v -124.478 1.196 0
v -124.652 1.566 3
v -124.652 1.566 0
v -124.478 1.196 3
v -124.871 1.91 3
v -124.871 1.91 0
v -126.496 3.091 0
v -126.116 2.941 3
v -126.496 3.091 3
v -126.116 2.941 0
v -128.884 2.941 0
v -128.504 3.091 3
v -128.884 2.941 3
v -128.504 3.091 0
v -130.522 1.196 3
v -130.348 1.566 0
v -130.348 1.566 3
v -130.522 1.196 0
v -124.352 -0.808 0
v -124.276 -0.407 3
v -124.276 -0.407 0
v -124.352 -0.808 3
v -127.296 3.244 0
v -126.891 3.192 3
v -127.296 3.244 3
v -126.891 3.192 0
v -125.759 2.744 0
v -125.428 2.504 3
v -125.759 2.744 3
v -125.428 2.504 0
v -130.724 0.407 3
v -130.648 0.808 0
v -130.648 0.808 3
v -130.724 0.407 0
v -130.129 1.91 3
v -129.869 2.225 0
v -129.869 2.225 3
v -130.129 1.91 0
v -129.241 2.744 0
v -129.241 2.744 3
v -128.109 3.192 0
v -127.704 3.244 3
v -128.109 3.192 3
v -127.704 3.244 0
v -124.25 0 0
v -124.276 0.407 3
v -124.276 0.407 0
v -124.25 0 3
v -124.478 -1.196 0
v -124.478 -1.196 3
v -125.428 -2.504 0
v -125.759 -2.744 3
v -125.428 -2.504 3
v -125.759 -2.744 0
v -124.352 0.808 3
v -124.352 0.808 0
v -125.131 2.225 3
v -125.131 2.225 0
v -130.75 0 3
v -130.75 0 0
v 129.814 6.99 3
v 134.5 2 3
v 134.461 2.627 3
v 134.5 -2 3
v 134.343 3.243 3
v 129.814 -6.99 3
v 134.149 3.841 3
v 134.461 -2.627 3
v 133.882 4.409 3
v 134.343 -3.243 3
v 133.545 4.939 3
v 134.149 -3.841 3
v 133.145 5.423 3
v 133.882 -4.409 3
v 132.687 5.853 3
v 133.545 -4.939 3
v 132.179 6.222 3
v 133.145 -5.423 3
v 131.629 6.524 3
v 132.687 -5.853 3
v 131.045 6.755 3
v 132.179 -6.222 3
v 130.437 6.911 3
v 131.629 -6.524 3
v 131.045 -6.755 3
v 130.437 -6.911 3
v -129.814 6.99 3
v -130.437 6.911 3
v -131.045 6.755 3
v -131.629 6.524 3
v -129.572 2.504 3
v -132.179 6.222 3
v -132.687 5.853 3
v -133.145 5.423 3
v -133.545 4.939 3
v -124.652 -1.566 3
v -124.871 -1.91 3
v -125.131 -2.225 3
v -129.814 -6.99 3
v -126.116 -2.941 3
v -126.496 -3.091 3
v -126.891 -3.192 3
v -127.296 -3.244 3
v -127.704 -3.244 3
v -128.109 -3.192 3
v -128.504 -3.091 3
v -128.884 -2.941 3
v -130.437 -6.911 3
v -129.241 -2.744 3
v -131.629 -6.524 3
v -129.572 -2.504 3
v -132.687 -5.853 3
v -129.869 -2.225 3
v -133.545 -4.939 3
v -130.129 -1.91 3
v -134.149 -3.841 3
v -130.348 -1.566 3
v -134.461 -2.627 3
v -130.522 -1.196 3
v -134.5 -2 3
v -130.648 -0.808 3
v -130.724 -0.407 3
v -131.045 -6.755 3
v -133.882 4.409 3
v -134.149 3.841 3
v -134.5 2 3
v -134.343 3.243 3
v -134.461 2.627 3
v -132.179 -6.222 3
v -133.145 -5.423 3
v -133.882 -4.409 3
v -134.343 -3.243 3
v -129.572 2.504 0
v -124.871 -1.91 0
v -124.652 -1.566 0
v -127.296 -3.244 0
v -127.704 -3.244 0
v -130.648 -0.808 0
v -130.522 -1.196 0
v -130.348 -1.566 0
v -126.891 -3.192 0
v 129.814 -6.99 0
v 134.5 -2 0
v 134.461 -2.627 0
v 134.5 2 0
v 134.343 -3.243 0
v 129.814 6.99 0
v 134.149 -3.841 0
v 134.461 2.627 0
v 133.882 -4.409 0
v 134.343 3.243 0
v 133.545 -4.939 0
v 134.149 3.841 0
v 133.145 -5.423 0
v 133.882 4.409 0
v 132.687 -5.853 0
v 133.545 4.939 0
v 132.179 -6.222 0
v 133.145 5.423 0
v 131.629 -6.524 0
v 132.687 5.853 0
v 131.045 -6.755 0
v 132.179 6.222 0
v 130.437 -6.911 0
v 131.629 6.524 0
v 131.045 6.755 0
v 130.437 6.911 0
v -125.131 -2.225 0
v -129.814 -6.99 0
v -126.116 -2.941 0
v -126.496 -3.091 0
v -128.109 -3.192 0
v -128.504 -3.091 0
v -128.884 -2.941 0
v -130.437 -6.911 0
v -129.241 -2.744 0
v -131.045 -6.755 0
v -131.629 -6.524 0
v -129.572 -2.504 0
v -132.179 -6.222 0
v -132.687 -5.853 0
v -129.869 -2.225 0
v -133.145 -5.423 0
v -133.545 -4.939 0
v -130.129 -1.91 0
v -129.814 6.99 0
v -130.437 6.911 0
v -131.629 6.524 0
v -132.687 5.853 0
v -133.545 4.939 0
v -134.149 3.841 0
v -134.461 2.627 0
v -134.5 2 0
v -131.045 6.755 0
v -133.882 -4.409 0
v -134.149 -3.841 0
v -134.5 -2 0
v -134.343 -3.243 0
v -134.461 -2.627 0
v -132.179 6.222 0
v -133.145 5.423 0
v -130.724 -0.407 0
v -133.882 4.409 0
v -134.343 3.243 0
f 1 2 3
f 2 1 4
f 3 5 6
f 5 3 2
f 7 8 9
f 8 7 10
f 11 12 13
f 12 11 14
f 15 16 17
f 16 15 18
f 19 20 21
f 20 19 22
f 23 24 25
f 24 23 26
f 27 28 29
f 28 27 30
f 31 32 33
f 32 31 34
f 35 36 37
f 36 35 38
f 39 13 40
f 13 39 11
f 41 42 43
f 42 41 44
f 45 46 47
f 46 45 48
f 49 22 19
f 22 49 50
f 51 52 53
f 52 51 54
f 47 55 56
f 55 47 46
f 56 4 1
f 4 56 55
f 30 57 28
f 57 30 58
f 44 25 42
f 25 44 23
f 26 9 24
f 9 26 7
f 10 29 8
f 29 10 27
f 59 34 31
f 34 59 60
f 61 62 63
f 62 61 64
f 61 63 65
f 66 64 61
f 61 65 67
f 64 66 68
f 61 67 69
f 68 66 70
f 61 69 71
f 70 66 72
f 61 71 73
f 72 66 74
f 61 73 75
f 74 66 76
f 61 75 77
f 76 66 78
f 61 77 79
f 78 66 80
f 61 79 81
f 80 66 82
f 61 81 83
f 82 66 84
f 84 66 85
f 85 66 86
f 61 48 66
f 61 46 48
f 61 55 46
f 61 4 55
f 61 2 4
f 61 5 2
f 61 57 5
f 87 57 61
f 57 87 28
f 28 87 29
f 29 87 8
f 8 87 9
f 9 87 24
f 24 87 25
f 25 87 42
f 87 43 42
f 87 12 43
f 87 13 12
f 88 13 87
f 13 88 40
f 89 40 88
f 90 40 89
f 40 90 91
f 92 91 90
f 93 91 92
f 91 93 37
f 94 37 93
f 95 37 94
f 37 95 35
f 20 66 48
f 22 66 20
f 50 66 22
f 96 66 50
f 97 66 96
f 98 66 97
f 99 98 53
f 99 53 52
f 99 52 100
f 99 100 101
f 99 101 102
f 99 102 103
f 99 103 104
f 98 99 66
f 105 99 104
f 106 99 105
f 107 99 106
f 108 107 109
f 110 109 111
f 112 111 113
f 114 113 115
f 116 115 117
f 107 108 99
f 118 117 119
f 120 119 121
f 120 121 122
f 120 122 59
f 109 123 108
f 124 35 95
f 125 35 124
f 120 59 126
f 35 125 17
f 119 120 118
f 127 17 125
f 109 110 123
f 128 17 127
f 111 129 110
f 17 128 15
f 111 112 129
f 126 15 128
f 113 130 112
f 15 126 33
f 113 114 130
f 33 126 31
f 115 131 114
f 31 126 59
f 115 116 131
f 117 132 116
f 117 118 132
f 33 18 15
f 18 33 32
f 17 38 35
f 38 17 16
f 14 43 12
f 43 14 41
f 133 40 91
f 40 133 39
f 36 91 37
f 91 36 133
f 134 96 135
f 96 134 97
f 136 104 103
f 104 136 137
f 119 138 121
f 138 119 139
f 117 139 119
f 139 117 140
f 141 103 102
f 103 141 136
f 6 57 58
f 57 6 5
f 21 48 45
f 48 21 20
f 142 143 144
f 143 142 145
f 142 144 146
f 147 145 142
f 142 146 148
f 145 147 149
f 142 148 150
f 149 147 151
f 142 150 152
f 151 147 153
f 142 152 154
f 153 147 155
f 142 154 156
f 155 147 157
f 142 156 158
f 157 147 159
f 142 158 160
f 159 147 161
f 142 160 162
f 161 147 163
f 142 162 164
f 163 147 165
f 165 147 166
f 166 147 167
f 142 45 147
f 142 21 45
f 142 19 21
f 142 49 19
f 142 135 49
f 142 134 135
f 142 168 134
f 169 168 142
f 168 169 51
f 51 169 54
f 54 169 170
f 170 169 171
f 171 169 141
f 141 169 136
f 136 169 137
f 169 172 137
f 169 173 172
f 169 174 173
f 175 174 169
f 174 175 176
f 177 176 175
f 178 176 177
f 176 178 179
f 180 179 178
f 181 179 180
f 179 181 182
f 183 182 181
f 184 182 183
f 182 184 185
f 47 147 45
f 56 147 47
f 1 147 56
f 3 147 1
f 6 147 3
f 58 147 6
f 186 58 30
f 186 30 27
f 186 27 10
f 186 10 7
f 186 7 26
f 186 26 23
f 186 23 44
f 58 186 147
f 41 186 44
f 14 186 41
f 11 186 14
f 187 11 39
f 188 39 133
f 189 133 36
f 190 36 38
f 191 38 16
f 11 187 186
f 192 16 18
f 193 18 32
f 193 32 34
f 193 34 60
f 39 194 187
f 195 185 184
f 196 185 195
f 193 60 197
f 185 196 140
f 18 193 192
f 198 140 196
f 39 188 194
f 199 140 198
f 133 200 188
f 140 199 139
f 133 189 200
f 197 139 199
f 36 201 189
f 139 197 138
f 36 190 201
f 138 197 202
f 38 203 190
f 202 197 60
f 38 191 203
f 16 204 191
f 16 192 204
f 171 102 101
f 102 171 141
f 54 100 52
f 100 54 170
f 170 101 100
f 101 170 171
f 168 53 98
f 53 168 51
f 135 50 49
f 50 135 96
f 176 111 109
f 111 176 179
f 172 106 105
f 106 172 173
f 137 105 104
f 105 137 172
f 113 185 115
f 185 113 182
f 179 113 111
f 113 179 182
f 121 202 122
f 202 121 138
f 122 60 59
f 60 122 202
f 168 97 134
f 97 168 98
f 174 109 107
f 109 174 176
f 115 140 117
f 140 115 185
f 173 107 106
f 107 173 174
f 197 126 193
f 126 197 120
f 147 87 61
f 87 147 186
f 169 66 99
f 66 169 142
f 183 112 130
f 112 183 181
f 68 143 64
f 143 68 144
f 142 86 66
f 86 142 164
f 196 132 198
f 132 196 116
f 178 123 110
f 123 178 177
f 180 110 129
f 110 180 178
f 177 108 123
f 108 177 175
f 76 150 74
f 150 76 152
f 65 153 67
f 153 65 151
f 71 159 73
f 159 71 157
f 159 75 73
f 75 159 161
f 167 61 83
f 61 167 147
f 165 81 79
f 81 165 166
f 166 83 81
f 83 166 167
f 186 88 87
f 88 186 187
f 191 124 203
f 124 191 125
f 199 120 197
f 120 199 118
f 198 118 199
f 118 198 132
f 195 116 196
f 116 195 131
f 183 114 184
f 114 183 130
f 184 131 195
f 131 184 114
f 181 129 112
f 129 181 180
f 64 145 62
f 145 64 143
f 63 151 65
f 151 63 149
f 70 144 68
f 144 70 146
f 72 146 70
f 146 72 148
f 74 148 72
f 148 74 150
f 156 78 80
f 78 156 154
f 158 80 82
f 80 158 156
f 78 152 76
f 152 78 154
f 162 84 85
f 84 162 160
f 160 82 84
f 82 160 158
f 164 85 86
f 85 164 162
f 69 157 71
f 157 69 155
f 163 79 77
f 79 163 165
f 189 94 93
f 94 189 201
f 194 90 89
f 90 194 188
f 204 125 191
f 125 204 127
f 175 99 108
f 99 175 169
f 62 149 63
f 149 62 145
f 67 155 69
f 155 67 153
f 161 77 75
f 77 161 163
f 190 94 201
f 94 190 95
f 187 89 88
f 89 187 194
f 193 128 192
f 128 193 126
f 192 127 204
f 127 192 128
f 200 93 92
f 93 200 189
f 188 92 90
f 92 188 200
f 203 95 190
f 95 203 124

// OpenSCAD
$fn = 50;


difference() {
	union() {
		hull() {
			translate(v = [-129.5000000000, 2.0000000000, 0]) {
				cylinder(h = 3, r = 5);
			}
			translate(v = [129.5000000000, 2.0000000000, 0]) {
				cylinder(h = 3, r = 5);
			}
			translate(v = [-129.5000000000, -2.0000000000, 0]) {
				cylinder(h = 3, r = 5);
			}
			translate(v = [129.5000000000, -2.0000000000, 0]) {
				cylinder(h = 3, r = 5);
			}
		}
	}
	union() {
		translate(v = [-127.5000000000, 0.0000000000, 0]) {
			cylinder(h = 3, r = 3.2500000000);
		}
		translate(v = [-127.5000000000, 0.0000000000, 0]) {
			cylinder(h = 3, r = 1.8000000000);
		}
		translate(v = [-127.5000000000, 0.0000000000, 0]) {
			cylinder(h = 3, r = 1.8000000000);
		}
		translate(v = [-127.5000000000, 0.0000000000, 0]) {
			cylinder(h = 3, r = 1.8000000000);
		}
	}
}
